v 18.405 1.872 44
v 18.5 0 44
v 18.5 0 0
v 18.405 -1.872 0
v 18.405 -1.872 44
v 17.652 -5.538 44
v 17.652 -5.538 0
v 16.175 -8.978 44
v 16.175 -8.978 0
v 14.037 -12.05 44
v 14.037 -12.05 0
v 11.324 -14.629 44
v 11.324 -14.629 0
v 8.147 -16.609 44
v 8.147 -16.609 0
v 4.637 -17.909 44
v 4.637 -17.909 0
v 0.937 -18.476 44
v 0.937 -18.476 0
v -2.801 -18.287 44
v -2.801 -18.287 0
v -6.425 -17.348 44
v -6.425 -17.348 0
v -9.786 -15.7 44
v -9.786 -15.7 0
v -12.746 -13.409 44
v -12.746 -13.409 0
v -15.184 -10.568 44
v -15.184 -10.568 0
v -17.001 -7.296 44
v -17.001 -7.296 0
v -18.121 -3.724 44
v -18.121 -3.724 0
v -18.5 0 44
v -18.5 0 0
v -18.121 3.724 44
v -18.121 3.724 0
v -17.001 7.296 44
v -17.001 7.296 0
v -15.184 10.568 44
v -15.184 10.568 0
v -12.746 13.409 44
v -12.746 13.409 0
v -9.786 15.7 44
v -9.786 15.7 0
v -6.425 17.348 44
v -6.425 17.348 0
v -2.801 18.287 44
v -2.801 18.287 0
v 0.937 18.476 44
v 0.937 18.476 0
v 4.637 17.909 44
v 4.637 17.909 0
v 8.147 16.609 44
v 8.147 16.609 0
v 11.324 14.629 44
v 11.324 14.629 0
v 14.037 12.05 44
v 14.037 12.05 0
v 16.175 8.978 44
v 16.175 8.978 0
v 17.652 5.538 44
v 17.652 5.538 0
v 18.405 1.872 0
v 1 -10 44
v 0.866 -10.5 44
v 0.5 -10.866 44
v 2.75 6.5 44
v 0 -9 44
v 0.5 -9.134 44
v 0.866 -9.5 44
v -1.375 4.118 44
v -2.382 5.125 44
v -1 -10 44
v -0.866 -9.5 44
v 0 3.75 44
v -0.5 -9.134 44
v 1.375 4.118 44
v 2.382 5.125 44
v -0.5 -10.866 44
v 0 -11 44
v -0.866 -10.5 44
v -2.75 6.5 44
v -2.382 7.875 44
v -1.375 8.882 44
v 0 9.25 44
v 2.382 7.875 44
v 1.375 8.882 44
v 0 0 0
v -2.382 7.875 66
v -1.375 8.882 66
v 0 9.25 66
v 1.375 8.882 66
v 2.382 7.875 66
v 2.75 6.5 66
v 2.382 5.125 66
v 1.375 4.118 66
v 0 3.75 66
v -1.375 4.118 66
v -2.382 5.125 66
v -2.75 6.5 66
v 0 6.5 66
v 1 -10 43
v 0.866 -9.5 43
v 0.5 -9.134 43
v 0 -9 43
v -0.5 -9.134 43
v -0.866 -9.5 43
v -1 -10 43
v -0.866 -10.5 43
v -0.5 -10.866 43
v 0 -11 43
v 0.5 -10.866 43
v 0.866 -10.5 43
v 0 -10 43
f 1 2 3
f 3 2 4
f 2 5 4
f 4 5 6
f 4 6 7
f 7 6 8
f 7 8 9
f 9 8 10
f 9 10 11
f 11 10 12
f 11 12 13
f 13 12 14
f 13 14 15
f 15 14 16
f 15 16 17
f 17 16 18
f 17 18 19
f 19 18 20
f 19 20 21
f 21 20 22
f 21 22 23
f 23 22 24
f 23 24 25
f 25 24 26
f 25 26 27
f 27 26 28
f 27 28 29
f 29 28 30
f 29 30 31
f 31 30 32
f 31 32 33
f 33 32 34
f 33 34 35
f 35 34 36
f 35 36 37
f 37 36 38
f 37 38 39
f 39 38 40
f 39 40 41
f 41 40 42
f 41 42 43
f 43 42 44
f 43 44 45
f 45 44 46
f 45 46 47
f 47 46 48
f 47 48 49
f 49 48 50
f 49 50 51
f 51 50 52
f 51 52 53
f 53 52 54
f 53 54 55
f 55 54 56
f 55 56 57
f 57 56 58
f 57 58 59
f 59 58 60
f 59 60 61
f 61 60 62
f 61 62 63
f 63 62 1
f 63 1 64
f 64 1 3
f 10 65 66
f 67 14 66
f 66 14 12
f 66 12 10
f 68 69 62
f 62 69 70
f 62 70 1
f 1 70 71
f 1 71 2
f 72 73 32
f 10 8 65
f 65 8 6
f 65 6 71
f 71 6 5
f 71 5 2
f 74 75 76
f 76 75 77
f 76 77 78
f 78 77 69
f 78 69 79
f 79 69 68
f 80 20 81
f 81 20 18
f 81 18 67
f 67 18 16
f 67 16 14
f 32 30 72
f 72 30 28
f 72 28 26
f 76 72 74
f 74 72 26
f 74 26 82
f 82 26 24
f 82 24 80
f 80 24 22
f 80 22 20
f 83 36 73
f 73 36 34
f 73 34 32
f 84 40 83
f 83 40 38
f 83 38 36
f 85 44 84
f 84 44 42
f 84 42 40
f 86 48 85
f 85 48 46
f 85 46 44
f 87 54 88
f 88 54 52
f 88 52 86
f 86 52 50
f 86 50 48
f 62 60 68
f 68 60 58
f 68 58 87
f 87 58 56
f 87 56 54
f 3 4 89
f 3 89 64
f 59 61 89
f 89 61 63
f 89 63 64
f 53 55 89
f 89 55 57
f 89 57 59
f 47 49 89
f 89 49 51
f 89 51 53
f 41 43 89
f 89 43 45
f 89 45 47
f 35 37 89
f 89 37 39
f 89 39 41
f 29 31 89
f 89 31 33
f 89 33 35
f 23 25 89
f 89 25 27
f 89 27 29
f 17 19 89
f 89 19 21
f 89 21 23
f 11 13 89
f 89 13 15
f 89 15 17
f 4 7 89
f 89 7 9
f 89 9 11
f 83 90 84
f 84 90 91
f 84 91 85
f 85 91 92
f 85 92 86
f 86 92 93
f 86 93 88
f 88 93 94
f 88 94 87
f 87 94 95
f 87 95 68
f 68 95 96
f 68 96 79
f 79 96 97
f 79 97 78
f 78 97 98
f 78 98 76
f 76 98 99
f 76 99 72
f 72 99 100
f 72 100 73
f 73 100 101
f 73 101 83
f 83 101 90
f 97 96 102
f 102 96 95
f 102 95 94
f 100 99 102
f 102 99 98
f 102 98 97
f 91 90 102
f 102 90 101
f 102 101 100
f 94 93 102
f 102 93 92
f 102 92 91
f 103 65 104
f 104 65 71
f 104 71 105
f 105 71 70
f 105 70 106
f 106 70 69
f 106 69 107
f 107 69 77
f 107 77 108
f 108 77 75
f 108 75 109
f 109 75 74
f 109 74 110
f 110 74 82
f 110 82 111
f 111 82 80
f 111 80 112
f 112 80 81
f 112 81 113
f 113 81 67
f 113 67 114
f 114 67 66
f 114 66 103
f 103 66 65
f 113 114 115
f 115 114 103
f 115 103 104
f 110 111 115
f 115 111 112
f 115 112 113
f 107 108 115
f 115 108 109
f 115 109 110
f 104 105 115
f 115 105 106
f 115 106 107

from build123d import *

# Parameters (mm, degrees)
SKETCH_1_R          = 18.5
EXTRUDE_1_DEPTH     = 44
SKETCH_2_R          = 2.75
EXTRUDE_2_DEPTH     = 22
SKETCH_3_R          = 1
CUT_EXTRUDE_1_DEPTH = 1


with BuildPart() as part:
    # 草图1 → 凸台-拉伸1 (new body)
    with BuildSketch(Plane.XY):
        Circle(SKETCH_1_R)
    extrude(amount=EXTRUDE_1_DEPTH)

    # 草图2 → 凸台-拉伸2 (add)
    with BuildSketch(Plane.XY.offset(44)):
        with Locations((0, 6.5)):
            Circle(SKETCH_2_R)
    extrude(amount=EXTRUDE_2_DEPTH)

    # 草图3 → 切除-拉伸1 (cut)
    with BuildSketch(Plane.XY.offset(44)):
        with Locations((0, -10)):
            Circle(SKETCH_3_R)
    extrude(amount=-CUT_EXTRUDE_1_DEPTH, mode=Mode.SUBTRACT)


solid = part.part
